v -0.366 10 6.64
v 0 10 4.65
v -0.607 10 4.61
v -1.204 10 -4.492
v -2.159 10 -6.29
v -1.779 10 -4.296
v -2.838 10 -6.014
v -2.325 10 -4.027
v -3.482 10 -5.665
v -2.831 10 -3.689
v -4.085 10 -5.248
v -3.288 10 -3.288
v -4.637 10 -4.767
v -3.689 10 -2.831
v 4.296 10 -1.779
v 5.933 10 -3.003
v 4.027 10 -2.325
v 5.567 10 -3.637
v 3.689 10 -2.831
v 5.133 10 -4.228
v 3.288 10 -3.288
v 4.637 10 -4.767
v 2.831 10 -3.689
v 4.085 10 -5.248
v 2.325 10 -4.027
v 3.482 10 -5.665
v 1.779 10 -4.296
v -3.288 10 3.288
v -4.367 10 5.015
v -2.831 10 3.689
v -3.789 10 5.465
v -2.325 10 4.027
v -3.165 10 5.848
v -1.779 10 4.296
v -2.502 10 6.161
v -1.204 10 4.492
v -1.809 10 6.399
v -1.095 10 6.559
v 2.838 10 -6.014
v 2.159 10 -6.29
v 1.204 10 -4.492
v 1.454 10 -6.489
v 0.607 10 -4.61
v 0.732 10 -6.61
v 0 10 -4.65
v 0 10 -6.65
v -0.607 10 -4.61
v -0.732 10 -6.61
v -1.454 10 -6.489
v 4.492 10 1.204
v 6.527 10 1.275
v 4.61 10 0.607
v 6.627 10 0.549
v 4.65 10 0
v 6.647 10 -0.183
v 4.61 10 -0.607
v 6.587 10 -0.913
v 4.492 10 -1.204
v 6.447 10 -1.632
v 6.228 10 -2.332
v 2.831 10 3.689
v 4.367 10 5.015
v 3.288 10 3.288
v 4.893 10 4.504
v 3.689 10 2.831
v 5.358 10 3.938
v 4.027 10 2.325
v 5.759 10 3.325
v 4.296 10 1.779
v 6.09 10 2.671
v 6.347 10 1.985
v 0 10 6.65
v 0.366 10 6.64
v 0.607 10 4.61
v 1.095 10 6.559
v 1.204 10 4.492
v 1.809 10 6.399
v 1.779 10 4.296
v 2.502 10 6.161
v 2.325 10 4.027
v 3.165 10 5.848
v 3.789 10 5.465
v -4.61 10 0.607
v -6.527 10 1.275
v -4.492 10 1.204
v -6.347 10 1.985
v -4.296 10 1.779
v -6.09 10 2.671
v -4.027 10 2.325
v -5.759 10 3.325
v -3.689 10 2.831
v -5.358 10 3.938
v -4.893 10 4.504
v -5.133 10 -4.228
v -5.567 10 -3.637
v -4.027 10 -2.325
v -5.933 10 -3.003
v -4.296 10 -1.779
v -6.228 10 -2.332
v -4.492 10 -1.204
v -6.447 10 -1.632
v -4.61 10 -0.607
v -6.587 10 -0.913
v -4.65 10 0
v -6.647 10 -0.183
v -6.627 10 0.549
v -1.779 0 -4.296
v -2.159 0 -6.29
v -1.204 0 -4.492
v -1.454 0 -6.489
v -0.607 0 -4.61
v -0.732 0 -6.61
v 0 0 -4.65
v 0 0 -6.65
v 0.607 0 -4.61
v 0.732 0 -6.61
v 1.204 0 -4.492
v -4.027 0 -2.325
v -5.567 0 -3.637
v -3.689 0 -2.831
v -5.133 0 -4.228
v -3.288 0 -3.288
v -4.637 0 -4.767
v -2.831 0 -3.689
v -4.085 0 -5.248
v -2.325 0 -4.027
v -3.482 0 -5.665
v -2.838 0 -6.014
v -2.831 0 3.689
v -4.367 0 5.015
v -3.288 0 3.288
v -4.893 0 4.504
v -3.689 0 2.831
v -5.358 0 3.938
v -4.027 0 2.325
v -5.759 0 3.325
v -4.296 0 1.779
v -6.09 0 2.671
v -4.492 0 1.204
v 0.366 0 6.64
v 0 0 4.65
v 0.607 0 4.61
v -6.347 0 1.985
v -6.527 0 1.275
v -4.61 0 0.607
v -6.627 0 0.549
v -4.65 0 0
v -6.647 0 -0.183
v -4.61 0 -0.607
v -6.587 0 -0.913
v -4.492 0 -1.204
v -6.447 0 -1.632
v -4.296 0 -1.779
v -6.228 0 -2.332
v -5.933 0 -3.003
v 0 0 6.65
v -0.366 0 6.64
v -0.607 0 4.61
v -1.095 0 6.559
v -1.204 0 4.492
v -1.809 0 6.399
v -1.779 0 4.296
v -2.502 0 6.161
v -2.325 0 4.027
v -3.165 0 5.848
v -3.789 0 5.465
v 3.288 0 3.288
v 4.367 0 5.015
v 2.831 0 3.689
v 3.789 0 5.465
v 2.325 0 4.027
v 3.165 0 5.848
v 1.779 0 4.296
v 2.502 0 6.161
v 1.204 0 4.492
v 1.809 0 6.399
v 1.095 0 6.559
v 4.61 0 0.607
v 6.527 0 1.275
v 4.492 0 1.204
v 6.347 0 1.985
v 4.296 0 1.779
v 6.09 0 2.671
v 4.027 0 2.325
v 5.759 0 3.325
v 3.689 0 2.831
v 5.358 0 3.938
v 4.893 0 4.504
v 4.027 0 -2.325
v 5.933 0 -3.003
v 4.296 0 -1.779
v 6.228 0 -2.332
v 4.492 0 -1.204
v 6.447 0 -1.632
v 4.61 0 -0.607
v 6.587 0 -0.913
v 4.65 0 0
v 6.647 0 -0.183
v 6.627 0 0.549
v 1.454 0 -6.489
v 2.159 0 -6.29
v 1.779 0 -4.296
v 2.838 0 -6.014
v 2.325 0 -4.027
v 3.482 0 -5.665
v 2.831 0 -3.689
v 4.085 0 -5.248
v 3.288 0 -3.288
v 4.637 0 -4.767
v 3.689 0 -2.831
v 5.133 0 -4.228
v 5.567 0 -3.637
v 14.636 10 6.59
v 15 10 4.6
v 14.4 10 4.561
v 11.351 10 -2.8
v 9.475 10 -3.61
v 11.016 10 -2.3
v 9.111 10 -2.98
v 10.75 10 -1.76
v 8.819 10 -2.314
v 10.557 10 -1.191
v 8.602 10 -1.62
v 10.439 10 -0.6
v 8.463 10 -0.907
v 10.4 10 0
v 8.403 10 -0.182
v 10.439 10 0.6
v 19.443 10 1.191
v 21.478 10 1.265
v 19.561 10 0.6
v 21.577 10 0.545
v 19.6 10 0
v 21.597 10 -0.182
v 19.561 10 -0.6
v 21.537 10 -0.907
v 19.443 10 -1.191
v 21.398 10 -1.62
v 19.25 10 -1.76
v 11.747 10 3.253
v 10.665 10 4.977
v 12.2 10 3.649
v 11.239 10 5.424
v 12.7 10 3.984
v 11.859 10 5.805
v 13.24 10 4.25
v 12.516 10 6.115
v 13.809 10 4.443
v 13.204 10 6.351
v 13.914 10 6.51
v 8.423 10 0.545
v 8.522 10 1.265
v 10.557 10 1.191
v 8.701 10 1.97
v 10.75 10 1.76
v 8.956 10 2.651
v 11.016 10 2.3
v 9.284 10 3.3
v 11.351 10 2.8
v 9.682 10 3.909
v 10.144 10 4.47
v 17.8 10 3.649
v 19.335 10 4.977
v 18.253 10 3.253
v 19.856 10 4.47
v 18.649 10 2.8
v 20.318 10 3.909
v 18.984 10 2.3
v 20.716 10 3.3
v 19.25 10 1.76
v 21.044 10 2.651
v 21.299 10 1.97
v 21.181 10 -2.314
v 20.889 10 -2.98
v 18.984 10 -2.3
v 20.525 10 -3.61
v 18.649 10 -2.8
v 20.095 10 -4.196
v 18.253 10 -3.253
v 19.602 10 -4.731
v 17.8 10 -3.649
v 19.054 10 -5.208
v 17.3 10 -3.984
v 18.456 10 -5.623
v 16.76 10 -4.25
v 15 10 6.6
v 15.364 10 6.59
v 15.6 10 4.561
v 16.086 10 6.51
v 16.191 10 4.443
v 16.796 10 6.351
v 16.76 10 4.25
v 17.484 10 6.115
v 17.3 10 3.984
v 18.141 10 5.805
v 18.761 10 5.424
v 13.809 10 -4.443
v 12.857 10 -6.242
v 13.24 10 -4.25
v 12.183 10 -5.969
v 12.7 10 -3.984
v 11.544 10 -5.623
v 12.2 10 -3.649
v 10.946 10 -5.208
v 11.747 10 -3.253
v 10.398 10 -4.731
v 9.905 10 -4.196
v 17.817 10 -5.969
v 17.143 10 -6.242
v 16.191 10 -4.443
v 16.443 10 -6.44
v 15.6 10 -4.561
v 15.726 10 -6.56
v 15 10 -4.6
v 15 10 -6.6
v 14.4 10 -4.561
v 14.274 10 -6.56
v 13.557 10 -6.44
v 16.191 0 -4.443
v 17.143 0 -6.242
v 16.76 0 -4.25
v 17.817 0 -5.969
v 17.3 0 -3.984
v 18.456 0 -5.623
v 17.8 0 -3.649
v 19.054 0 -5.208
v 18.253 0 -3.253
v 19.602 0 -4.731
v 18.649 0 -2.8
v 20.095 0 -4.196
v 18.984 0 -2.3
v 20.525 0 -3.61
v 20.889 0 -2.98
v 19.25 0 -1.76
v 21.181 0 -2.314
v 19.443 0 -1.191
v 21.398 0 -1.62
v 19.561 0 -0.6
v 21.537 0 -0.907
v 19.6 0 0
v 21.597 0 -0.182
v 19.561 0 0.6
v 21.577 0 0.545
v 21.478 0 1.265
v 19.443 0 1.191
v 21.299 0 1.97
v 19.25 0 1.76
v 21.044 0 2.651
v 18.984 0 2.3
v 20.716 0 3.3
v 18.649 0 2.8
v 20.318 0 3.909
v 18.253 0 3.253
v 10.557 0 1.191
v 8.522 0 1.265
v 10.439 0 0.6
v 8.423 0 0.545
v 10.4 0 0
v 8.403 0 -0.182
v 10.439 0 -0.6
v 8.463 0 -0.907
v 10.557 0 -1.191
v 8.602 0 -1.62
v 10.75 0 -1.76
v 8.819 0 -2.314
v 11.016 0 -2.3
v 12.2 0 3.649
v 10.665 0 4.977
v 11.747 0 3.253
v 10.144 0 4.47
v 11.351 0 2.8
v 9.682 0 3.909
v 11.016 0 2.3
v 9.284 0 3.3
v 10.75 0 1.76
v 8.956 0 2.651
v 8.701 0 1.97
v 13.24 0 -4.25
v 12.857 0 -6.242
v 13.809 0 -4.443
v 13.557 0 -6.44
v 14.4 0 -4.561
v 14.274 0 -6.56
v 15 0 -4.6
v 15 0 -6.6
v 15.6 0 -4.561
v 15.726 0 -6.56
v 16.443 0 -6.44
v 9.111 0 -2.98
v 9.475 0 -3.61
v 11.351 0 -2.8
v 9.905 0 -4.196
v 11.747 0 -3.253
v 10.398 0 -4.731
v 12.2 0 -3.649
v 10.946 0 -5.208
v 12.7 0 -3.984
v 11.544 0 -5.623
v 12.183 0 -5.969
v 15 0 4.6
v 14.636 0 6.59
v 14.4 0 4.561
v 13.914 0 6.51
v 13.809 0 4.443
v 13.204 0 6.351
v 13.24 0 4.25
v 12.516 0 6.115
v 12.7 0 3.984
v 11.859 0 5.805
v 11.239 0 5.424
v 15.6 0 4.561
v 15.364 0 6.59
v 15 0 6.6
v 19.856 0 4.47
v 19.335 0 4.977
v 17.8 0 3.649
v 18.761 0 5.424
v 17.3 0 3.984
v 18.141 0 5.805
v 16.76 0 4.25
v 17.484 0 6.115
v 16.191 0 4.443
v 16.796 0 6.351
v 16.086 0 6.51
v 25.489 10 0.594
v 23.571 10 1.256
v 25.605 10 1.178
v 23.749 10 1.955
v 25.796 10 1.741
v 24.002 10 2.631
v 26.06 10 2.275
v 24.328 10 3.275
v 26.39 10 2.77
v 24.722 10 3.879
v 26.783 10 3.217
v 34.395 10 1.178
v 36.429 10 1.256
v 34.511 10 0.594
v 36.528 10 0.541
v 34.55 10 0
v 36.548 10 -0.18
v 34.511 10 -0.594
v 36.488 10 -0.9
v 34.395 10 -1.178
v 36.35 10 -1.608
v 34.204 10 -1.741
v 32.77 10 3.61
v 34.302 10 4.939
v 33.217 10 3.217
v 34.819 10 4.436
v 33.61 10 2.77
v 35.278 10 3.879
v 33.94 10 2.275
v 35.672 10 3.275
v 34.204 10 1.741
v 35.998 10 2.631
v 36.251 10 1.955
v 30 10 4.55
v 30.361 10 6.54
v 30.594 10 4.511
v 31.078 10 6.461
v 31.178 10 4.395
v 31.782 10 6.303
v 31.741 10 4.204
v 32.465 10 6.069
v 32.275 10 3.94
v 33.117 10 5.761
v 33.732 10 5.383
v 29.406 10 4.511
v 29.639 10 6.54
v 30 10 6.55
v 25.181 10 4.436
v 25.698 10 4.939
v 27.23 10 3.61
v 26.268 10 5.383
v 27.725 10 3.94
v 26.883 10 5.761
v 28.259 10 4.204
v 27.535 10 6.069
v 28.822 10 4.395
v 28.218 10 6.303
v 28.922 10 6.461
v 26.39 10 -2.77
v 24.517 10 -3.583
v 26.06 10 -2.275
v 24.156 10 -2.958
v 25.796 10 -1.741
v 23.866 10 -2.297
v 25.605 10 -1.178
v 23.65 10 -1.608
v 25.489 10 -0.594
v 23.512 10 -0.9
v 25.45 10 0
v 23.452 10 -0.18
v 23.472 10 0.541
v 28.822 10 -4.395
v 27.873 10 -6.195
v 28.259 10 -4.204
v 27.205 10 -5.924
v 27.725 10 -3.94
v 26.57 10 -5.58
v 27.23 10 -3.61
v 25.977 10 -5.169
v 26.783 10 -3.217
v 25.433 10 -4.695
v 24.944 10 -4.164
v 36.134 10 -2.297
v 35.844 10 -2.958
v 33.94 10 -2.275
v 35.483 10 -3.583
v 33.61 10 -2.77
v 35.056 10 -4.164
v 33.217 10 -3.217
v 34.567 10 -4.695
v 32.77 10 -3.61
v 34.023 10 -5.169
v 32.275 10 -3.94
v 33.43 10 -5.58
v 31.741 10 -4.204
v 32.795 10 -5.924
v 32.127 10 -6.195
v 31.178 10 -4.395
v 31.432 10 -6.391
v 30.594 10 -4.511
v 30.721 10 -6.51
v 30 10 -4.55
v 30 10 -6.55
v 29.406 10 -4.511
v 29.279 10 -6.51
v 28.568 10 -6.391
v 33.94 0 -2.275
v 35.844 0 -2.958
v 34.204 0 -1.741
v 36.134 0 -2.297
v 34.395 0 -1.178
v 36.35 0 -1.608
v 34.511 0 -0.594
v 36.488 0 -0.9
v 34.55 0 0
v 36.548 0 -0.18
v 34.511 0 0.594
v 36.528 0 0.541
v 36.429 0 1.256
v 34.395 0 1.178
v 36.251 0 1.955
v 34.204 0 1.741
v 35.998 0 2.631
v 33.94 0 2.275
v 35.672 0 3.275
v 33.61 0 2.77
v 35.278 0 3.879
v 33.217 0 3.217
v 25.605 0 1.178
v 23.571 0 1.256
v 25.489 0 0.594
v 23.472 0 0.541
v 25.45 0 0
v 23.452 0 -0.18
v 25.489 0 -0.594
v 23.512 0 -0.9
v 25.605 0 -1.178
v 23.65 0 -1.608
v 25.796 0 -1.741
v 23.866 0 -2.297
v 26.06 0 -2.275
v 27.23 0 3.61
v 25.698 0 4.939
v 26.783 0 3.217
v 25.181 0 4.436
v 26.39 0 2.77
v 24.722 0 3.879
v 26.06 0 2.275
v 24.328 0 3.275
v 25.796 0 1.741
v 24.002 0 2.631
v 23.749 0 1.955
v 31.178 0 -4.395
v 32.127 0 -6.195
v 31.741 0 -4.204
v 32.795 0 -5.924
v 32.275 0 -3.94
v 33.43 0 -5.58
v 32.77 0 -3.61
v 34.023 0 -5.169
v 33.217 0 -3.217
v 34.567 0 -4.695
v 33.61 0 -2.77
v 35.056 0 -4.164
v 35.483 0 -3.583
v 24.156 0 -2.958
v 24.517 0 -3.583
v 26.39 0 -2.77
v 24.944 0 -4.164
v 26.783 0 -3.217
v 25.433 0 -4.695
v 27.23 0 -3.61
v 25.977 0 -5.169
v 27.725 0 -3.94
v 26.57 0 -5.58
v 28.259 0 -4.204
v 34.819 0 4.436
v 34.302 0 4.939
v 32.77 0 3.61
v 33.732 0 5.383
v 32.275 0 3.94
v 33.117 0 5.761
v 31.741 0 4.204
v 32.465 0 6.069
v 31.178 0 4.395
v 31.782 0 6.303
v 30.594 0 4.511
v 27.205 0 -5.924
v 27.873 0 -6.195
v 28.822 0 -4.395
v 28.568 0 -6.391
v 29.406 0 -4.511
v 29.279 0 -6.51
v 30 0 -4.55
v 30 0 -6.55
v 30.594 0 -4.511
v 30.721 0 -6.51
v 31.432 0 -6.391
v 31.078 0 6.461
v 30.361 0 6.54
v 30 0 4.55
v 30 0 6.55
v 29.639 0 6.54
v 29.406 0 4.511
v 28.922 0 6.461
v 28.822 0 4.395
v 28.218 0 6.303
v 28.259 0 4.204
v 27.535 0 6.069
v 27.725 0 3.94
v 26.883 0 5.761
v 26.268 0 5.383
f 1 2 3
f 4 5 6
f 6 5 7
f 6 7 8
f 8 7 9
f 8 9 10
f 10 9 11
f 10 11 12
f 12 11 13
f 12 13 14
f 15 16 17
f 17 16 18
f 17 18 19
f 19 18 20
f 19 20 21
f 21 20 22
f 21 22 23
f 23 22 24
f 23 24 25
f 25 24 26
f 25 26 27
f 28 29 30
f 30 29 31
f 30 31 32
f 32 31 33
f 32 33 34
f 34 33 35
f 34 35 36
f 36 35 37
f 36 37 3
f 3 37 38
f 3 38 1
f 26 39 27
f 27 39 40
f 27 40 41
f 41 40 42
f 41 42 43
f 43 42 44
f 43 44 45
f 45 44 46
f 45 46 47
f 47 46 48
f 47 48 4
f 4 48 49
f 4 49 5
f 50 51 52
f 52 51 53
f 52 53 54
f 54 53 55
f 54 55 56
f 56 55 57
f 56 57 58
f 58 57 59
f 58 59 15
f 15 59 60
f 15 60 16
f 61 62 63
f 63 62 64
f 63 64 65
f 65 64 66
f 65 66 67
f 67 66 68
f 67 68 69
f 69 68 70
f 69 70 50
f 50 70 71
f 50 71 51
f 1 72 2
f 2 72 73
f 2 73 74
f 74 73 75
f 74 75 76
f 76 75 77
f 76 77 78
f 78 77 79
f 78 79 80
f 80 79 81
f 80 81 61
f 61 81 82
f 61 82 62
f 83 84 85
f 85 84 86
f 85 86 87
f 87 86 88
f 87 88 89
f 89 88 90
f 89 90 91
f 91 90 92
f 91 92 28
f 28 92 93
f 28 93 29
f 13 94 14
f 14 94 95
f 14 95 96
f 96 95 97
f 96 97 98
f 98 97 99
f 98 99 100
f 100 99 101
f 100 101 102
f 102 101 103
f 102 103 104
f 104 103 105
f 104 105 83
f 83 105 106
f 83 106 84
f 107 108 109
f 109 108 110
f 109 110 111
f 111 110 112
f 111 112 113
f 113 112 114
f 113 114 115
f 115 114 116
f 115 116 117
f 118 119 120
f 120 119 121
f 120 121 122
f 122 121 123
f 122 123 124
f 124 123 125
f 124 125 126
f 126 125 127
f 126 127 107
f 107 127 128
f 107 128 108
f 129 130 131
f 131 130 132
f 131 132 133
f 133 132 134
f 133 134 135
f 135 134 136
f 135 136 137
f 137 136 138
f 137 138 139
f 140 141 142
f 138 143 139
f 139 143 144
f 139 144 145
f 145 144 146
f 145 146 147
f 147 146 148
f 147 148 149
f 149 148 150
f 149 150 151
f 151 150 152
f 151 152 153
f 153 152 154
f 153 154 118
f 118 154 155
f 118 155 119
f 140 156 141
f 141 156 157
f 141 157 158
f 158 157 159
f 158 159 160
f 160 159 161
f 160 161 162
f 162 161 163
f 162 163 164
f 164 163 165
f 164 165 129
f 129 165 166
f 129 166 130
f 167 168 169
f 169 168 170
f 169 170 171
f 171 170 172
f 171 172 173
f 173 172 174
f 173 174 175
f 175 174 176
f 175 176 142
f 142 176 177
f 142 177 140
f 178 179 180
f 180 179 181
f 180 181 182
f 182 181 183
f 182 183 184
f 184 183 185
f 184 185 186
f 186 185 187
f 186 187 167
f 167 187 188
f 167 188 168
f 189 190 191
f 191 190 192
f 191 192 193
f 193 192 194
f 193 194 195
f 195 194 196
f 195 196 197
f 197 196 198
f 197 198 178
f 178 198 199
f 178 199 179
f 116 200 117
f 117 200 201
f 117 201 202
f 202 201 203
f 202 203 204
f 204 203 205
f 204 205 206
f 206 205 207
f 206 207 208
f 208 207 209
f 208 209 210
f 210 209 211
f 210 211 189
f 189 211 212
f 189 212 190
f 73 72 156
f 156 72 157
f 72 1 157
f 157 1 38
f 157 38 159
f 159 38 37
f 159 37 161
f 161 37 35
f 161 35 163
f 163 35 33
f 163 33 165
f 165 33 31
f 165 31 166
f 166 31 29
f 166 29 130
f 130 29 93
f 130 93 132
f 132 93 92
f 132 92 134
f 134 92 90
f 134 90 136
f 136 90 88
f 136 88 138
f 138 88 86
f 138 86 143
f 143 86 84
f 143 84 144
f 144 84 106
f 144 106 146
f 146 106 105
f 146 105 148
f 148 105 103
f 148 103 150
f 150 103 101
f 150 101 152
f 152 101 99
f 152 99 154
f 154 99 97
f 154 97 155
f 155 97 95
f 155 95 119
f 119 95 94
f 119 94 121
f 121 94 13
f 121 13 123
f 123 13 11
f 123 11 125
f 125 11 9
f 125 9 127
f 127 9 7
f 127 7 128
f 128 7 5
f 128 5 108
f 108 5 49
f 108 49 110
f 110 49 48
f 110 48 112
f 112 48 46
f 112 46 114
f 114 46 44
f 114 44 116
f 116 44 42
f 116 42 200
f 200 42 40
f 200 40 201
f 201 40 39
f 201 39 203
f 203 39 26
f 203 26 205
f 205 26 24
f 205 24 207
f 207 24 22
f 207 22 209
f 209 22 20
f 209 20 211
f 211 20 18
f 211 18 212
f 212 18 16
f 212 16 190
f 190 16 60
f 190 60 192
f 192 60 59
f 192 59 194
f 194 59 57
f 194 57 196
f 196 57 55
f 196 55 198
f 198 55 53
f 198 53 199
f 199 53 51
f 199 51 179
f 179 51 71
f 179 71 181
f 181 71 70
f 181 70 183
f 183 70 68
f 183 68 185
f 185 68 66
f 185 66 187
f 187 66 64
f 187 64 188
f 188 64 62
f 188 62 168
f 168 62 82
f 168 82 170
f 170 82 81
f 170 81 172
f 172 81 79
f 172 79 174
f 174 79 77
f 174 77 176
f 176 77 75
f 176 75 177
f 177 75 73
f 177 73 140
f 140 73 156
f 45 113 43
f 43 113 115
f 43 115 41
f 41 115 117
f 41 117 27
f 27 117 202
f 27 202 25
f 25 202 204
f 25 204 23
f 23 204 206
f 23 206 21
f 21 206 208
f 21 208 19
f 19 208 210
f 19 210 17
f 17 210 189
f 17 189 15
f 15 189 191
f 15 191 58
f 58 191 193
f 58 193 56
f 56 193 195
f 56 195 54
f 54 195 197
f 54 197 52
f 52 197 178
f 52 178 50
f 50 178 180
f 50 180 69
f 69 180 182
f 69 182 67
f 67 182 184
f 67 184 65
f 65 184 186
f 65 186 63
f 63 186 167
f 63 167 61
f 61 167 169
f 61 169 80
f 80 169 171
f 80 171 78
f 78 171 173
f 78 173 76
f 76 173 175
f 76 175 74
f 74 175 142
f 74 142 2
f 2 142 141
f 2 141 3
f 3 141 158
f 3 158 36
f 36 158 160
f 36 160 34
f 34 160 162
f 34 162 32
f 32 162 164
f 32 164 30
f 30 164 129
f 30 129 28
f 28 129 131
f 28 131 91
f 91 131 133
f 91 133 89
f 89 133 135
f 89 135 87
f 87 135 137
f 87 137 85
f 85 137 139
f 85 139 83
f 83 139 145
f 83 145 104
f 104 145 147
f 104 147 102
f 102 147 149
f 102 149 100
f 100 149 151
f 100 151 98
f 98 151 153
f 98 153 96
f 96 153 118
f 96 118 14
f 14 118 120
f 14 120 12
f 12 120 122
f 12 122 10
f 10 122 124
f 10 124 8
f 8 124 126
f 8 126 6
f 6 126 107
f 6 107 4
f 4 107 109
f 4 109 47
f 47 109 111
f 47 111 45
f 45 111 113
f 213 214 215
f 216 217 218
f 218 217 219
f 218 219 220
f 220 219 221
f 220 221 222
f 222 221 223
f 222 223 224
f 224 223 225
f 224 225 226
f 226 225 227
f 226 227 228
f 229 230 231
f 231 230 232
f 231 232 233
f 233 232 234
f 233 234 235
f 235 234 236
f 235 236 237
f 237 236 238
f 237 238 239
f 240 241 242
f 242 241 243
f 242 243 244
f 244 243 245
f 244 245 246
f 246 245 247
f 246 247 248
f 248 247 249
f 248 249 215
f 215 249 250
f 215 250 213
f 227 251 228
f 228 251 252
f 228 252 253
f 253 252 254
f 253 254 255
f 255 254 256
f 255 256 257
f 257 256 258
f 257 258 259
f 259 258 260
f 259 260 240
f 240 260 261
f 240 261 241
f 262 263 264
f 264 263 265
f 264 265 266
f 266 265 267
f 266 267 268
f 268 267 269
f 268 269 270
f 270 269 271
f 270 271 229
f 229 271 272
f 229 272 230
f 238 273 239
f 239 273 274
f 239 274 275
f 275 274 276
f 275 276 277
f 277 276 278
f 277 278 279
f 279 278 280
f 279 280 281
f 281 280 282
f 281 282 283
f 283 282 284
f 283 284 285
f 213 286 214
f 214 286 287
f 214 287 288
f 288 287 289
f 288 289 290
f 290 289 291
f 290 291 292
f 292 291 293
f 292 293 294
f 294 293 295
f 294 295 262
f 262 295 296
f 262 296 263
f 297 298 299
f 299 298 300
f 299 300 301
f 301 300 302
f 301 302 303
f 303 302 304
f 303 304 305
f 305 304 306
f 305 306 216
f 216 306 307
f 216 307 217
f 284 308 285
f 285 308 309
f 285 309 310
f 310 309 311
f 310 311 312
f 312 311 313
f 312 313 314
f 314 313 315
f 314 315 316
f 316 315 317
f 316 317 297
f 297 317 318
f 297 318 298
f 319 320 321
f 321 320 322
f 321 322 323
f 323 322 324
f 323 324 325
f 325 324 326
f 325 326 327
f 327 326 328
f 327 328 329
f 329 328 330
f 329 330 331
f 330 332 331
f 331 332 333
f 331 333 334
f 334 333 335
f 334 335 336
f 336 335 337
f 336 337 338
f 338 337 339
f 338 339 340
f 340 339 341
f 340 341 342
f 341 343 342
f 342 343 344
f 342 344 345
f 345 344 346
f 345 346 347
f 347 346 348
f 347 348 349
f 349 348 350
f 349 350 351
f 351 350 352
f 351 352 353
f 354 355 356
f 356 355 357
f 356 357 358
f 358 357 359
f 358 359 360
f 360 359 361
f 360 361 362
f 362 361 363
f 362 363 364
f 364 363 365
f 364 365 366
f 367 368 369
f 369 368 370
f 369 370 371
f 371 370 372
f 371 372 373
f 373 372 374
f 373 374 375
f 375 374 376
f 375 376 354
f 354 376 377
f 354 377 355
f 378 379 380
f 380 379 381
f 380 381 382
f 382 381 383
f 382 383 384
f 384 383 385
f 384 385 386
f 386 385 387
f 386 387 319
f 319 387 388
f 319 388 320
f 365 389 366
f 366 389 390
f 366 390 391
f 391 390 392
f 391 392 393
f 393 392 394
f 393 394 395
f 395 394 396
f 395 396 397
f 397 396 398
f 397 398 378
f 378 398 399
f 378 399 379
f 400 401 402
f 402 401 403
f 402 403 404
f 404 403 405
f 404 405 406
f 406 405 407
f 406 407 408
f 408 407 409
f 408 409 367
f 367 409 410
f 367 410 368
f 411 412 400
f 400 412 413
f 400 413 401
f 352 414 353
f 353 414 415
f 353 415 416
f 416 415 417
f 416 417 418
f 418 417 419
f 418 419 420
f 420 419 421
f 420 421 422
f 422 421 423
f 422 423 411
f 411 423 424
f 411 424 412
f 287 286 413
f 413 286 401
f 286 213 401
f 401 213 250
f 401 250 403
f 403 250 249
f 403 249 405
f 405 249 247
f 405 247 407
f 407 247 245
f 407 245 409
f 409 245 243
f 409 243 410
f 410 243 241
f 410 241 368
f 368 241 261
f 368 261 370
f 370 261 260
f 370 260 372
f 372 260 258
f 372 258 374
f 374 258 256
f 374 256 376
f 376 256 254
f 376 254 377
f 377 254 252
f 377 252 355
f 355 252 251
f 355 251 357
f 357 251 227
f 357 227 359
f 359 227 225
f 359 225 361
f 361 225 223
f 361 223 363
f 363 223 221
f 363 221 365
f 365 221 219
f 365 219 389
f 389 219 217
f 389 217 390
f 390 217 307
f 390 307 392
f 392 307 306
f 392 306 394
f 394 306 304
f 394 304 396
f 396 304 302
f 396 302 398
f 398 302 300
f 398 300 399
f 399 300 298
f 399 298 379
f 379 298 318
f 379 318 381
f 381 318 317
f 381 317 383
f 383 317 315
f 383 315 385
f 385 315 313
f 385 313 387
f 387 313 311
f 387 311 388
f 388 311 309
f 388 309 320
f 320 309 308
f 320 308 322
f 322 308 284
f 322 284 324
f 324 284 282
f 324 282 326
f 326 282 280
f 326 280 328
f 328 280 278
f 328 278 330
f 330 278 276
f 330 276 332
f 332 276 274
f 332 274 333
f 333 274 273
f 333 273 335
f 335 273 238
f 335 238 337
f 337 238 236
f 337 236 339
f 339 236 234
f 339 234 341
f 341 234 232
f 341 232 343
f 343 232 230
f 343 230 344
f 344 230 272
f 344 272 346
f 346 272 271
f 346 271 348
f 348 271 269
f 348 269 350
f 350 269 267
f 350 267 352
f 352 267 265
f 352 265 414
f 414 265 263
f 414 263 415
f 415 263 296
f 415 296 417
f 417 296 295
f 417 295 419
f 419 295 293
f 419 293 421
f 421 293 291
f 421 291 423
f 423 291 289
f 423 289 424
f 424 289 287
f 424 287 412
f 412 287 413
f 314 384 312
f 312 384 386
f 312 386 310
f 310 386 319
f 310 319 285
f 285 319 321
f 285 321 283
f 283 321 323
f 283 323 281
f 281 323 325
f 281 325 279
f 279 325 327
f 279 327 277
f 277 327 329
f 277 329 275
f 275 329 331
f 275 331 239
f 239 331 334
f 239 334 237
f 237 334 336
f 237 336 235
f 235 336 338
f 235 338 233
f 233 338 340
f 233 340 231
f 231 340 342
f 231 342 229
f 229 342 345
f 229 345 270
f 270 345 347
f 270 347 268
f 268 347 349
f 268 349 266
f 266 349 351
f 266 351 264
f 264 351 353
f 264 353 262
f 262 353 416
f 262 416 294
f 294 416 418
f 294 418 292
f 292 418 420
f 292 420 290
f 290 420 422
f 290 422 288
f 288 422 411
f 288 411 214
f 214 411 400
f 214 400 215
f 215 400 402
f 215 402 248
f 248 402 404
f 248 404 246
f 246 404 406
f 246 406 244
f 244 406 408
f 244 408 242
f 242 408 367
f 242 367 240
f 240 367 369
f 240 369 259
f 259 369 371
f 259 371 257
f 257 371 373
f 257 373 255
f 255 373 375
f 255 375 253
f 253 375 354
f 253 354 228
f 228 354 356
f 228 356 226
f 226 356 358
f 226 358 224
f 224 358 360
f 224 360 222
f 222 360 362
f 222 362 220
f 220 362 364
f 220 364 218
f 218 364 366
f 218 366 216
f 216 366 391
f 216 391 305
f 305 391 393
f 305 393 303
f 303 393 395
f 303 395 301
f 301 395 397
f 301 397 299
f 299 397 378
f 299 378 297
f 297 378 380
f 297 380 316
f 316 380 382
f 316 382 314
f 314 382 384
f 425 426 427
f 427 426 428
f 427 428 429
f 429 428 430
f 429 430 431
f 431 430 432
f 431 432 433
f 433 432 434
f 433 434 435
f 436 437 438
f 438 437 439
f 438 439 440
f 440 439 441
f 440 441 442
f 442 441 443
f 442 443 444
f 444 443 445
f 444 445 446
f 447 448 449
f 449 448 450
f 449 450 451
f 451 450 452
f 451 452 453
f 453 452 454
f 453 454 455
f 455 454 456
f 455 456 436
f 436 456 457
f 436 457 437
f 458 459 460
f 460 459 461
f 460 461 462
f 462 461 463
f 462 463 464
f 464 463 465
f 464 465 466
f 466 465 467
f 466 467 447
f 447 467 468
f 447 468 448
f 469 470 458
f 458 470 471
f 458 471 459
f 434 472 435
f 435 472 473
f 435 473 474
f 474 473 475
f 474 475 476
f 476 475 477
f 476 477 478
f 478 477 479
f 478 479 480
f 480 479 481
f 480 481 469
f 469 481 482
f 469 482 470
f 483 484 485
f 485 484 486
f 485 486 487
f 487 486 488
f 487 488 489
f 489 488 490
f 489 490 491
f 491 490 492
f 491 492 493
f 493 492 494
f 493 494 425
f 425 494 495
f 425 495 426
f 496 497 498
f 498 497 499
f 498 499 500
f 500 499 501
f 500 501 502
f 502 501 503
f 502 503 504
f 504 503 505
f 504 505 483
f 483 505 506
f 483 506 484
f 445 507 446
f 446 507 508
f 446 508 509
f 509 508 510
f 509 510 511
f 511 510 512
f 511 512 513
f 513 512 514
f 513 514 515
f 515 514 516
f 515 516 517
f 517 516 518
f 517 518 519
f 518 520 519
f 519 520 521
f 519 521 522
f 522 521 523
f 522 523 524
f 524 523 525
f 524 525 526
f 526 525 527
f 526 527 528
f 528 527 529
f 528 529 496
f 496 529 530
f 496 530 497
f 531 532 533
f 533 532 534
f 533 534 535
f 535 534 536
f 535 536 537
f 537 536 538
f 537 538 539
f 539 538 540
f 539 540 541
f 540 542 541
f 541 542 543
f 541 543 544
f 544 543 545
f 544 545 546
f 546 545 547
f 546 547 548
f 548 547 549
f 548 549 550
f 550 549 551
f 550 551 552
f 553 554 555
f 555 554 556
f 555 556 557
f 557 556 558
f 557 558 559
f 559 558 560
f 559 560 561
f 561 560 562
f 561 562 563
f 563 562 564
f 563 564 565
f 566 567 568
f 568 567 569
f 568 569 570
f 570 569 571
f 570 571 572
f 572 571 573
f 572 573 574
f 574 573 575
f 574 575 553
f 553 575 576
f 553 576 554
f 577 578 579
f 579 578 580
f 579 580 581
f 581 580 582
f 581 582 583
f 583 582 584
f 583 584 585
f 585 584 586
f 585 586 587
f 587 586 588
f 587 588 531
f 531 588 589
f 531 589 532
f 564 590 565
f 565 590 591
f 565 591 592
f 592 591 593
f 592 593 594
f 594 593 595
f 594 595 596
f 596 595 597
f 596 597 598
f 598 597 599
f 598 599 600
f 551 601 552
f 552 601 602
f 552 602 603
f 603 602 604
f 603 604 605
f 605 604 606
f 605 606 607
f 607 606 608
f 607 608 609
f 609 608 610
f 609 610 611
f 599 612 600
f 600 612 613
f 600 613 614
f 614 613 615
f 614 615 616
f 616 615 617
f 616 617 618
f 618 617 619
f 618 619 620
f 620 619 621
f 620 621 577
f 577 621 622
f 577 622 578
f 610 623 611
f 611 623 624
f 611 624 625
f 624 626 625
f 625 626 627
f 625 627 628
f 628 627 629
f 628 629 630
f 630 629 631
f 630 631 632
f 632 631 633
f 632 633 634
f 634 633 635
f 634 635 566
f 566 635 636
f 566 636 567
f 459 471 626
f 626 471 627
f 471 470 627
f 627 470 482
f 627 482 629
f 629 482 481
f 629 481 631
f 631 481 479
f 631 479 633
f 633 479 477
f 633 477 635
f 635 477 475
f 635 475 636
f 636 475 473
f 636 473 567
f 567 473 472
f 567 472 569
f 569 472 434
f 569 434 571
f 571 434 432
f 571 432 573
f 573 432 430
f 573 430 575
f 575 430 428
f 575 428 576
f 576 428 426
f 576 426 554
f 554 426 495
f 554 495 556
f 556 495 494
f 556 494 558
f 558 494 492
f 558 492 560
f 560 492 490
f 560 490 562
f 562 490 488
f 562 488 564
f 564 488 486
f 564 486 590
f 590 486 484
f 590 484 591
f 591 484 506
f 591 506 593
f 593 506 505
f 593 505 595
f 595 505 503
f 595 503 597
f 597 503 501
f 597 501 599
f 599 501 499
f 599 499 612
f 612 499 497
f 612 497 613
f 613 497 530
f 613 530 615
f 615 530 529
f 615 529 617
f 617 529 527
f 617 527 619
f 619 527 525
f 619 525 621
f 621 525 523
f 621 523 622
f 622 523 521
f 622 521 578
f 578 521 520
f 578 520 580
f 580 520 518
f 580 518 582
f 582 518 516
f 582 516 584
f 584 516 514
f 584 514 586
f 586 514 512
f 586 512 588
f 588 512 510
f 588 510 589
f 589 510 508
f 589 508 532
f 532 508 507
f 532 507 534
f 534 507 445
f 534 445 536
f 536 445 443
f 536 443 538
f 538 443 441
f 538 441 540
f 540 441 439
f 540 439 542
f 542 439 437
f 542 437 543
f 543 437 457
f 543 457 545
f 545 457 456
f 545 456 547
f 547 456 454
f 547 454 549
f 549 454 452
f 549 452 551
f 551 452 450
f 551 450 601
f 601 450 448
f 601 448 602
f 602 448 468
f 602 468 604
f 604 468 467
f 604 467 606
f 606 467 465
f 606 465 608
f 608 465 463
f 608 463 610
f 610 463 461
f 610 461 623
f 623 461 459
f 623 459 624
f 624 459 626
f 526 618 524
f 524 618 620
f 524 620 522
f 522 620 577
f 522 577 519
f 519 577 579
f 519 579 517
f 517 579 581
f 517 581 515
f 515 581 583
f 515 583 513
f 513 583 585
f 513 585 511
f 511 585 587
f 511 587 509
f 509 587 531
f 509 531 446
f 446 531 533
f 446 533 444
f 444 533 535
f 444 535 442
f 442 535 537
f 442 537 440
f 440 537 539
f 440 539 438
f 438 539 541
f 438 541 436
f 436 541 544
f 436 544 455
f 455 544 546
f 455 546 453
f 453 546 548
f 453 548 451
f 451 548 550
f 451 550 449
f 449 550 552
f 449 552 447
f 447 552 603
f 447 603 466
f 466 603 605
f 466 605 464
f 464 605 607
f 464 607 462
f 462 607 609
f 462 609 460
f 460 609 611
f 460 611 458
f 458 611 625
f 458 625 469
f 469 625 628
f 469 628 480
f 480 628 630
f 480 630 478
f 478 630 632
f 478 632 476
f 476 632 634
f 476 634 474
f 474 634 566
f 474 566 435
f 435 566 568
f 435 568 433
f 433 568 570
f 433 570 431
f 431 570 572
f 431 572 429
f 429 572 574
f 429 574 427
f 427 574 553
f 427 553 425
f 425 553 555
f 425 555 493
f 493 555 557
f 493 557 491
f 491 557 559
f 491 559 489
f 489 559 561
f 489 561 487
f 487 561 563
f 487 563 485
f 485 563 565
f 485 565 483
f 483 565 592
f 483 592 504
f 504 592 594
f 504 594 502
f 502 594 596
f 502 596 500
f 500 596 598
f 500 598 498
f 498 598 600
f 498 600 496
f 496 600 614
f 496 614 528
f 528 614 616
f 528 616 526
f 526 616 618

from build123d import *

# Parameters (mm, degrees)
SKETCH1_R             = 6.65
SKETCH1_R_2           = 4.65
BOSS_EXTRUDE1_DEPTH   = 10
SKETCH1_R_3           = 6.6
SKETCH1_R_4           = 4.6
BOSS_EXTRUDE1_2_DEPTH = 10
SKETCH1_R_5           = 6.55
SKETCH1_R_6           = 4.55
BOSS_EXTRUDE1_3_DEPTH = 10


with BuildPart() as part:
    # Sketch1 → Boss-Extrude1 (new body)
    with BuildSketch(Plane(origin=(0, 0, 0), x_dir=(1, 0, 0), z_dir=(0, 1, 0))):
        Circle(SKETCH1_R)
        Circle(SKETCH1_R_2, mode=Mode.SUBTRACT)
    extrude(amount=BOSS_EXTRUDE1_DEPTH)


with BuildPart() as body_2:
    # Sketch1 → Boss-Extrude1 2 (new body)
    with BuildSketch(Plane(origin=(0, 0, 0), x_dir=(1, 0, 0), z_dir=(0, 1, 0))):
        with Locations((15, 0)):
            Circle(SKETCH1_R_3)
        with Locations((15, 0)):
            Circle(SKETCH1_R_4, mode=Mode.SUBTRACT)
    extrude(amount=BOSS_EXTRUDE1_2_DEPTH)


with BuildPart() as body_3:
    # Sketch1 → Boss-Extrude1 3 (new body)
    with BuildSketch(Plane(origin=(0, 0, 0), x_dir=(1, 0, 0), z_dir=(0, 1, 0))):
        with Locations((30, 0)):
            Circle(SKETCH1_R_5)
        with Locations((30, 0)):
            Circle(SKETCH1_R_6, mode=Mode.SUBTRACT)
    extrude(amount=BOSS_EXTRUDE1_3_DEPTH)


solid = Compound([part.part, body_2.part, body_3.part])
